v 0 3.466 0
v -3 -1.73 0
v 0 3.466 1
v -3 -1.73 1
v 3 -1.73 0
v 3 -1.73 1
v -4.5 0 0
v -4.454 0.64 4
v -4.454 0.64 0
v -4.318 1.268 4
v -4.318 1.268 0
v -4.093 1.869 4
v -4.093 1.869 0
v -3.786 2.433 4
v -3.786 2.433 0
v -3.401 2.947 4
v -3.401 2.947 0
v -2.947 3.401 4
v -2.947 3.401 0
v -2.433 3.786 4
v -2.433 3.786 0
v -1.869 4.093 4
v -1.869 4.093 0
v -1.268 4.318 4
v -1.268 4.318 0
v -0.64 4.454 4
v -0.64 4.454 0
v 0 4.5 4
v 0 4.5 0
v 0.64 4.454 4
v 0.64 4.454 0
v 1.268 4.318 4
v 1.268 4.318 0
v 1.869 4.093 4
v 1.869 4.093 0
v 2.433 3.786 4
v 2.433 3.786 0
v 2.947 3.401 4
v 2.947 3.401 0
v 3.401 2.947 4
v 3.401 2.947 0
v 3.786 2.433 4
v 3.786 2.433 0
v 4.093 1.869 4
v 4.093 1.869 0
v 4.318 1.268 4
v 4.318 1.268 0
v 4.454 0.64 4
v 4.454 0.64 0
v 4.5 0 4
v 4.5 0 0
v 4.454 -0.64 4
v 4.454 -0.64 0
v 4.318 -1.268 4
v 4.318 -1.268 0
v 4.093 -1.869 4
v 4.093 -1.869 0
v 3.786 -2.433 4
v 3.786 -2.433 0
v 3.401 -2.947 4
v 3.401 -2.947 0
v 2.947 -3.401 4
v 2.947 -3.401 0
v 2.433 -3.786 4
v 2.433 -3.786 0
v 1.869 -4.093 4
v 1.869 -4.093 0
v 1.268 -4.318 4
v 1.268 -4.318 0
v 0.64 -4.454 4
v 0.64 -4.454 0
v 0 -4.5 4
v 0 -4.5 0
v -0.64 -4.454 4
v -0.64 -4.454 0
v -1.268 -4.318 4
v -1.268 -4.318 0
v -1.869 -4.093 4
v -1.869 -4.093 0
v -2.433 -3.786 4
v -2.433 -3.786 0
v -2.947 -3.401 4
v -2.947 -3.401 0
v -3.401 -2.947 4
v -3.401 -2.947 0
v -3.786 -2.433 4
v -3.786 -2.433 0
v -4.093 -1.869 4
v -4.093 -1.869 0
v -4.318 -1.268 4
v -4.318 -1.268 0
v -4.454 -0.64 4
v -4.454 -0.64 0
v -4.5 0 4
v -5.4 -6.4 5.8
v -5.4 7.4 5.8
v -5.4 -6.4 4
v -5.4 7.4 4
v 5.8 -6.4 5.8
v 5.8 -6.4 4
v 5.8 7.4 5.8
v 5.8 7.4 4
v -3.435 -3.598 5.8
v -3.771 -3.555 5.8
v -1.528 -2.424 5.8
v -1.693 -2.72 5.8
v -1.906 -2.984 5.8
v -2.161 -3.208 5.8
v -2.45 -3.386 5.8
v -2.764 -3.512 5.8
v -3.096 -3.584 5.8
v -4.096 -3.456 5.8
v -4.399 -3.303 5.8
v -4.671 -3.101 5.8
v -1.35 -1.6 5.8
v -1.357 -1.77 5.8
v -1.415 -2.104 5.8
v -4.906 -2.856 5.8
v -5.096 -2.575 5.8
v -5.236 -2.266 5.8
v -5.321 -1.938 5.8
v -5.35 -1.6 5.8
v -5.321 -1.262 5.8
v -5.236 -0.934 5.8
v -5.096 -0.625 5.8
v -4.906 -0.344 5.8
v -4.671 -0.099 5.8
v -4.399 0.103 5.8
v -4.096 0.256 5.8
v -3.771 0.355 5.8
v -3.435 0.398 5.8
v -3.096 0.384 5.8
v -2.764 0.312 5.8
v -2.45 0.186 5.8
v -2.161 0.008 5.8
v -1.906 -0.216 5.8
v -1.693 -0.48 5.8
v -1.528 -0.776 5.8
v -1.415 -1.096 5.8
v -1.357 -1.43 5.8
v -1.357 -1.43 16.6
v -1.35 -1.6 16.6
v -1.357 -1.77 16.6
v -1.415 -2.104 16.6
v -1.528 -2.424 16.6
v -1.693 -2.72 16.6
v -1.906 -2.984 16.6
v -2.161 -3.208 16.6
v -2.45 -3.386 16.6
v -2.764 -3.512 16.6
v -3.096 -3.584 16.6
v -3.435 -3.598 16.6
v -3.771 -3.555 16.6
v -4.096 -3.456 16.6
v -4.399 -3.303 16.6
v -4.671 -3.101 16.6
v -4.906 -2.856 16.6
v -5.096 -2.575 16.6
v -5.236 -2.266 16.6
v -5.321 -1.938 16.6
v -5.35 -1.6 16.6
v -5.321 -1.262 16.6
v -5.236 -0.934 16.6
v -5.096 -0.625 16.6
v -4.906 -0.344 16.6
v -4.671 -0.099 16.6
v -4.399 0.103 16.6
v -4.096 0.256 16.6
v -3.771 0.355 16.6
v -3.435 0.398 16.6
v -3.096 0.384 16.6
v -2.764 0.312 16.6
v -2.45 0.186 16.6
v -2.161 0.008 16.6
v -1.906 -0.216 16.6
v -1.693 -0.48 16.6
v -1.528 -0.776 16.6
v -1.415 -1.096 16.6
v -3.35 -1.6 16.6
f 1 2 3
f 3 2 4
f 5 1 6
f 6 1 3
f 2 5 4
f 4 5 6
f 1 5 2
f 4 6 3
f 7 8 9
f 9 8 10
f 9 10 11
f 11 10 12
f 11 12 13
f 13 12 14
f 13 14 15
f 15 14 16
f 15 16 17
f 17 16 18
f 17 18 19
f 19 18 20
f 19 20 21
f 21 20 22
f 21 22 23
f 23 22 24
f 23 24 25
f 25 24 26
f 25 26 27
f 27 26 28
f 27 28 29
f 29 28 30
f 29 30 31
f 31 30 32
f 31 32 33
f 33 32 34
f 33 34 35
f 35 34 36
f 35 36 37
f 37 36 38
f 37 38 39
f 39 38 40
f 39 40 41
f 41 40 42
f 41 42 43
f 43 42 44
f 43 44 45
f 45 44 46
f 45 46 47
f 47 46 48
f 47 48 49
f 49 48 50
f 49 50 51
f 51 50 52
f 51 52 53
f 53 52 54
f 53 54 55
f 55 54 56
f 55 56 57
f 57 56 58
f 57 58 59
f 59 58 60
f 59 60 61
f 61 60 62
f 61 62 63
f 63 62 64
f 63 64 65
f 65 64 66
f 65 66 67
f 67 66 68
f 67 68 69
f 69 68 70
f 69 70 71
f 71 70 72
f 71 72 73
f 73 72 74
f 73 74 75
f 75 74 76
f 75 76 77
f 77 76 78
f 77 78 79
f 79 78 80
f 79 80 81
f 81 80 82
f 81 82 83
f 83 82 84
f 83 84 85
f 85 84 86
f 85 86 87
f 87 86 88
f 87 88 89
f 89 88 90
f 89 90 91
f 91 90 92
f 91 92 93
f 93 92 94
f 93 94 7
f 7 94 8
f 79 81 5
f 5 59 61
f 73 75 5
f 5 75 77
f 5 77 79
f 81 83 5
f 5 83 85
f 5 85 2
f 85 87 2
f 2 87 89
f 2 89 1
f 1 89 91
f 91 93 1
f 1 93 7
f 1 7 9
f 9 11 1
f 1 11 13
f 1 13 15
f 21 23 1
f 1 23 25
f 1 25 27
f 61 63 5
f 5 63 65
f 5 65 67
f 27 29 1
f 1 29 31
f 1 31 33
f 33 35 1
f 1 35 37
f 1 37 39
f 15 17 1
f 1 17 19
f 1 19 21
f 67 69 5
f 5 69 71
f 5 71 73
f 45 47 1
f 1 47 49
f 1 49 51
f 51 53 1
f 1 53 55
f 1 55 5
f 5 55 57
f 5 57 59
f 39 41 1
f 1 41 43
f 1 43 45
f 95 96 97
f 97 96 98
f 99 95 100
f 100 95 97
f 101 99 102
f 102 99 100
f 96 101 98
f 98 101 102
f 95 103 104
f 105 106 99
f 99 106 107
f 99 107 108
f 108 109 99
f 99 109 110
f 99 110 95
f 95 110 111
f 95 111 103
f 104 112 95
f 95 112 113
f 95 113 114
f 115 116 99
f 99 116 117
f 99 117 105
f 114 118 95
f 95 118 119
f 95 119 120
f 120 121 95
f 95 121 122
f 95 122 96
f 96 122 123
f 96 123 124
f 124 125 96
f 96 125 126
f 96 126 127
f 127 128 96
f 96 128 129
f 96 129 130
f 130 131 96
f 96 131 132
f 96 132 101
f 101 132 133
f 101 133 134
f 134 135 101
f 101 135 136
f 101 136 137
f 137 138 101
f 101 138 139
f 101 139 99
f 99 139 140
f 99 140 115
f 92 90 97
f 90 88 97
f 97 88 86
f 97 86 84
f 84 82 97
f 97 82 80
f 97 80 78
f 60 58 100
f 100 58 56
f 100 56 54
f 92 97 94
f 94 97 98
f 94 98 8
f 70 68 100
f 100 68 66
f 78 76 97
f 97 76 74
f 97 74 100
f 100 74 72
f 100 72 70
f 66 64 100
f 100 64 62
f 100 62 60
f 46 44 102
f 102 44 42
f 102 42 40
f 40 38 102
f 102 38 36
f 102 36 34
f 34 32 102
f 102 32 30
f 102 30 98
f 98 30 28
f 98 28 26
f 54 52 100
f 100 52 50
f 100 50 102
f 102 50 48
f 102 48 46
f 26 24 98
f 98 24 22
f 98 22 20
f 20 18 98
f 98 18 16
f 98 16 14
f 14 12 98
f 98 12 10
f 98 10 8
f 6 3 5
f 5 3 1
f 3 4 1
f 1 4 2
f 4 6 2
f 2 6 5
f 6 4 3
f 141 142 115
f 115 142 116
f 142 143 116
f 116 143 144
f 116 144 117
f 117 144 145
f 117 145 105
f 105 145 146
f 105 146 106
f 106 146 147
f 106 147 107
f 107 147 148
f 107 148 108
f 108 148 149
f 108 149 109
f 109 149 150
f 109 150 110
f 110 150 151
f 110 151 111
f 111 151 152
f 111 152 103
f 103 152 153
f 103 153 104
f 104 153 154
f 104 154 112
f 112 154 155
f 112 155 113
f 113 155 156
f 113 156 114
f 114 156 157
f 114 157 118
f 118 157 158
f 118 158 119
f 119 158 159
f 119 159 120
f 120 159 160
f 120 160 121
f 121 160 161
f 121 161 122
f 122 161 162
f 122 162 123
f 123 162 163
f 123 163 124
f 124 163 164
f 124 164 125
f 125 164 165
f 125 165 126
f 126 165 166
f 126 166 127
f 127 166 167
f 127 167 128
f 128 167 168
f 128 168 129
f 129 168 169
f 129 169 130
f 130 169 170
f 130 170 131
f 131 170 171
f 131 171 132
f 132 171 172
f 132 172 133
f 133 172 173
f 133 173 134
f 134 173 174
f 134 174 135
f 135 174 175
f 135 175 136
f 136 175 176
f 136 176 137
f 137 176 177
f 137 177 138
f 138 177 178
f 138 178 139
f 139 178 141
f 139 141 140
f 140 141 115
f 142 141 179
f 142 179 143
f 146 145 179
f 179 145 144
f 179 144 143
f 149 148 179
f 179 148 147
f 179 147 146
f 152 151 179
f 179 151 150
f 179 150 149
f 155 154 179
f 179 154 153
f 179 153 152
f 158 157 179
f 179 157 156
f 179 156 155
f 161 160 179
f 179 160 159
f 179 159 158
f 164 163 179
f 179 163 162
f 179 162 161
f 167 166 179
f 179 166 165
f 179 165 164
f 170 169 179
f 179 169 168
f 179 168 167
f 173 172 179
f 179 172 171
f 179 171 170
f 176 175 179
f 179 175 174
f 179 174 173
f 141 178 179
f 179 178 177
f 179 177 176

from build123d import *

# Parameters (mm, degrees)
SKETCH_1_R          = 4.5
EXTRUDE_1_DEPTH     = 4
SKETCH_2_W          = 11.2
SKETCH_2_H          = 13.8
EXTRUDE_2_DEPTH     = 1.8
CUT_EXTRUDE_1_DEPTH = 1
BLACK_DEPTH         = 1
SKETCH_4_R          = 2
EXTRUDE_3_DEPTH     = 10.8


with BuildPart() as part:
    # Эскиз1 → Бобышка-Вытянуть1 (new body)
    with BuildSketch(Plane.XY):
        Circle(SKETCH_1_R)
    extrude(amount=EXTRUDE_1_DEPTH)

    # Эскиз2 → Бобышка-Вытянуть2 (add)
    with BuildSketch(Plane.XY.offset(4)):
        with Locations((0.2, 0.5)):
            Rectangle(SKETCH_2_W, SKETCH_2_H)
    extrude(amount=EXTRUDE_2_DEPTH)

    # Эскиз3 → Вырез-Вытянуть1 (cut)
    with BuildSketch(Plane(origin=(0, 0, 0), x_dir=(-1, 0, 0), z_dir=(0, 0, -1))):
        Polygon((-3, -1.73), (3, -1.73), (0, 3.466152423), align=None)
    extrude(amount=-CUT_EXTRUDE_1_DEPTH, mode=Mode.SUBTRACT)

    # Эскиз4 → Бобышка-Вытянуть3 (add)
    with BuildSketch(Plane.XY.offset(5.8)):
        with Locations((-3.35, -1.6)):
            Circle(SKETCH_4_R)
    extrude(amount=EXTRUDE_3_DEPTH)


with BuildPart() as body_2:
    # Эскиз5 → black (new body)
    with BuildSketch(Plane(origin=(0, 0, 1), x_dir=(-1, 0, 0), z_dir=(0, 0, -1))):
        Polygon((0, 3.466152423), (-3, -1.73), (3, -1.73), align=None)
    extrude(amount=BLACK_DEPTH)


solid = Compound([part.part, body_2.part])
